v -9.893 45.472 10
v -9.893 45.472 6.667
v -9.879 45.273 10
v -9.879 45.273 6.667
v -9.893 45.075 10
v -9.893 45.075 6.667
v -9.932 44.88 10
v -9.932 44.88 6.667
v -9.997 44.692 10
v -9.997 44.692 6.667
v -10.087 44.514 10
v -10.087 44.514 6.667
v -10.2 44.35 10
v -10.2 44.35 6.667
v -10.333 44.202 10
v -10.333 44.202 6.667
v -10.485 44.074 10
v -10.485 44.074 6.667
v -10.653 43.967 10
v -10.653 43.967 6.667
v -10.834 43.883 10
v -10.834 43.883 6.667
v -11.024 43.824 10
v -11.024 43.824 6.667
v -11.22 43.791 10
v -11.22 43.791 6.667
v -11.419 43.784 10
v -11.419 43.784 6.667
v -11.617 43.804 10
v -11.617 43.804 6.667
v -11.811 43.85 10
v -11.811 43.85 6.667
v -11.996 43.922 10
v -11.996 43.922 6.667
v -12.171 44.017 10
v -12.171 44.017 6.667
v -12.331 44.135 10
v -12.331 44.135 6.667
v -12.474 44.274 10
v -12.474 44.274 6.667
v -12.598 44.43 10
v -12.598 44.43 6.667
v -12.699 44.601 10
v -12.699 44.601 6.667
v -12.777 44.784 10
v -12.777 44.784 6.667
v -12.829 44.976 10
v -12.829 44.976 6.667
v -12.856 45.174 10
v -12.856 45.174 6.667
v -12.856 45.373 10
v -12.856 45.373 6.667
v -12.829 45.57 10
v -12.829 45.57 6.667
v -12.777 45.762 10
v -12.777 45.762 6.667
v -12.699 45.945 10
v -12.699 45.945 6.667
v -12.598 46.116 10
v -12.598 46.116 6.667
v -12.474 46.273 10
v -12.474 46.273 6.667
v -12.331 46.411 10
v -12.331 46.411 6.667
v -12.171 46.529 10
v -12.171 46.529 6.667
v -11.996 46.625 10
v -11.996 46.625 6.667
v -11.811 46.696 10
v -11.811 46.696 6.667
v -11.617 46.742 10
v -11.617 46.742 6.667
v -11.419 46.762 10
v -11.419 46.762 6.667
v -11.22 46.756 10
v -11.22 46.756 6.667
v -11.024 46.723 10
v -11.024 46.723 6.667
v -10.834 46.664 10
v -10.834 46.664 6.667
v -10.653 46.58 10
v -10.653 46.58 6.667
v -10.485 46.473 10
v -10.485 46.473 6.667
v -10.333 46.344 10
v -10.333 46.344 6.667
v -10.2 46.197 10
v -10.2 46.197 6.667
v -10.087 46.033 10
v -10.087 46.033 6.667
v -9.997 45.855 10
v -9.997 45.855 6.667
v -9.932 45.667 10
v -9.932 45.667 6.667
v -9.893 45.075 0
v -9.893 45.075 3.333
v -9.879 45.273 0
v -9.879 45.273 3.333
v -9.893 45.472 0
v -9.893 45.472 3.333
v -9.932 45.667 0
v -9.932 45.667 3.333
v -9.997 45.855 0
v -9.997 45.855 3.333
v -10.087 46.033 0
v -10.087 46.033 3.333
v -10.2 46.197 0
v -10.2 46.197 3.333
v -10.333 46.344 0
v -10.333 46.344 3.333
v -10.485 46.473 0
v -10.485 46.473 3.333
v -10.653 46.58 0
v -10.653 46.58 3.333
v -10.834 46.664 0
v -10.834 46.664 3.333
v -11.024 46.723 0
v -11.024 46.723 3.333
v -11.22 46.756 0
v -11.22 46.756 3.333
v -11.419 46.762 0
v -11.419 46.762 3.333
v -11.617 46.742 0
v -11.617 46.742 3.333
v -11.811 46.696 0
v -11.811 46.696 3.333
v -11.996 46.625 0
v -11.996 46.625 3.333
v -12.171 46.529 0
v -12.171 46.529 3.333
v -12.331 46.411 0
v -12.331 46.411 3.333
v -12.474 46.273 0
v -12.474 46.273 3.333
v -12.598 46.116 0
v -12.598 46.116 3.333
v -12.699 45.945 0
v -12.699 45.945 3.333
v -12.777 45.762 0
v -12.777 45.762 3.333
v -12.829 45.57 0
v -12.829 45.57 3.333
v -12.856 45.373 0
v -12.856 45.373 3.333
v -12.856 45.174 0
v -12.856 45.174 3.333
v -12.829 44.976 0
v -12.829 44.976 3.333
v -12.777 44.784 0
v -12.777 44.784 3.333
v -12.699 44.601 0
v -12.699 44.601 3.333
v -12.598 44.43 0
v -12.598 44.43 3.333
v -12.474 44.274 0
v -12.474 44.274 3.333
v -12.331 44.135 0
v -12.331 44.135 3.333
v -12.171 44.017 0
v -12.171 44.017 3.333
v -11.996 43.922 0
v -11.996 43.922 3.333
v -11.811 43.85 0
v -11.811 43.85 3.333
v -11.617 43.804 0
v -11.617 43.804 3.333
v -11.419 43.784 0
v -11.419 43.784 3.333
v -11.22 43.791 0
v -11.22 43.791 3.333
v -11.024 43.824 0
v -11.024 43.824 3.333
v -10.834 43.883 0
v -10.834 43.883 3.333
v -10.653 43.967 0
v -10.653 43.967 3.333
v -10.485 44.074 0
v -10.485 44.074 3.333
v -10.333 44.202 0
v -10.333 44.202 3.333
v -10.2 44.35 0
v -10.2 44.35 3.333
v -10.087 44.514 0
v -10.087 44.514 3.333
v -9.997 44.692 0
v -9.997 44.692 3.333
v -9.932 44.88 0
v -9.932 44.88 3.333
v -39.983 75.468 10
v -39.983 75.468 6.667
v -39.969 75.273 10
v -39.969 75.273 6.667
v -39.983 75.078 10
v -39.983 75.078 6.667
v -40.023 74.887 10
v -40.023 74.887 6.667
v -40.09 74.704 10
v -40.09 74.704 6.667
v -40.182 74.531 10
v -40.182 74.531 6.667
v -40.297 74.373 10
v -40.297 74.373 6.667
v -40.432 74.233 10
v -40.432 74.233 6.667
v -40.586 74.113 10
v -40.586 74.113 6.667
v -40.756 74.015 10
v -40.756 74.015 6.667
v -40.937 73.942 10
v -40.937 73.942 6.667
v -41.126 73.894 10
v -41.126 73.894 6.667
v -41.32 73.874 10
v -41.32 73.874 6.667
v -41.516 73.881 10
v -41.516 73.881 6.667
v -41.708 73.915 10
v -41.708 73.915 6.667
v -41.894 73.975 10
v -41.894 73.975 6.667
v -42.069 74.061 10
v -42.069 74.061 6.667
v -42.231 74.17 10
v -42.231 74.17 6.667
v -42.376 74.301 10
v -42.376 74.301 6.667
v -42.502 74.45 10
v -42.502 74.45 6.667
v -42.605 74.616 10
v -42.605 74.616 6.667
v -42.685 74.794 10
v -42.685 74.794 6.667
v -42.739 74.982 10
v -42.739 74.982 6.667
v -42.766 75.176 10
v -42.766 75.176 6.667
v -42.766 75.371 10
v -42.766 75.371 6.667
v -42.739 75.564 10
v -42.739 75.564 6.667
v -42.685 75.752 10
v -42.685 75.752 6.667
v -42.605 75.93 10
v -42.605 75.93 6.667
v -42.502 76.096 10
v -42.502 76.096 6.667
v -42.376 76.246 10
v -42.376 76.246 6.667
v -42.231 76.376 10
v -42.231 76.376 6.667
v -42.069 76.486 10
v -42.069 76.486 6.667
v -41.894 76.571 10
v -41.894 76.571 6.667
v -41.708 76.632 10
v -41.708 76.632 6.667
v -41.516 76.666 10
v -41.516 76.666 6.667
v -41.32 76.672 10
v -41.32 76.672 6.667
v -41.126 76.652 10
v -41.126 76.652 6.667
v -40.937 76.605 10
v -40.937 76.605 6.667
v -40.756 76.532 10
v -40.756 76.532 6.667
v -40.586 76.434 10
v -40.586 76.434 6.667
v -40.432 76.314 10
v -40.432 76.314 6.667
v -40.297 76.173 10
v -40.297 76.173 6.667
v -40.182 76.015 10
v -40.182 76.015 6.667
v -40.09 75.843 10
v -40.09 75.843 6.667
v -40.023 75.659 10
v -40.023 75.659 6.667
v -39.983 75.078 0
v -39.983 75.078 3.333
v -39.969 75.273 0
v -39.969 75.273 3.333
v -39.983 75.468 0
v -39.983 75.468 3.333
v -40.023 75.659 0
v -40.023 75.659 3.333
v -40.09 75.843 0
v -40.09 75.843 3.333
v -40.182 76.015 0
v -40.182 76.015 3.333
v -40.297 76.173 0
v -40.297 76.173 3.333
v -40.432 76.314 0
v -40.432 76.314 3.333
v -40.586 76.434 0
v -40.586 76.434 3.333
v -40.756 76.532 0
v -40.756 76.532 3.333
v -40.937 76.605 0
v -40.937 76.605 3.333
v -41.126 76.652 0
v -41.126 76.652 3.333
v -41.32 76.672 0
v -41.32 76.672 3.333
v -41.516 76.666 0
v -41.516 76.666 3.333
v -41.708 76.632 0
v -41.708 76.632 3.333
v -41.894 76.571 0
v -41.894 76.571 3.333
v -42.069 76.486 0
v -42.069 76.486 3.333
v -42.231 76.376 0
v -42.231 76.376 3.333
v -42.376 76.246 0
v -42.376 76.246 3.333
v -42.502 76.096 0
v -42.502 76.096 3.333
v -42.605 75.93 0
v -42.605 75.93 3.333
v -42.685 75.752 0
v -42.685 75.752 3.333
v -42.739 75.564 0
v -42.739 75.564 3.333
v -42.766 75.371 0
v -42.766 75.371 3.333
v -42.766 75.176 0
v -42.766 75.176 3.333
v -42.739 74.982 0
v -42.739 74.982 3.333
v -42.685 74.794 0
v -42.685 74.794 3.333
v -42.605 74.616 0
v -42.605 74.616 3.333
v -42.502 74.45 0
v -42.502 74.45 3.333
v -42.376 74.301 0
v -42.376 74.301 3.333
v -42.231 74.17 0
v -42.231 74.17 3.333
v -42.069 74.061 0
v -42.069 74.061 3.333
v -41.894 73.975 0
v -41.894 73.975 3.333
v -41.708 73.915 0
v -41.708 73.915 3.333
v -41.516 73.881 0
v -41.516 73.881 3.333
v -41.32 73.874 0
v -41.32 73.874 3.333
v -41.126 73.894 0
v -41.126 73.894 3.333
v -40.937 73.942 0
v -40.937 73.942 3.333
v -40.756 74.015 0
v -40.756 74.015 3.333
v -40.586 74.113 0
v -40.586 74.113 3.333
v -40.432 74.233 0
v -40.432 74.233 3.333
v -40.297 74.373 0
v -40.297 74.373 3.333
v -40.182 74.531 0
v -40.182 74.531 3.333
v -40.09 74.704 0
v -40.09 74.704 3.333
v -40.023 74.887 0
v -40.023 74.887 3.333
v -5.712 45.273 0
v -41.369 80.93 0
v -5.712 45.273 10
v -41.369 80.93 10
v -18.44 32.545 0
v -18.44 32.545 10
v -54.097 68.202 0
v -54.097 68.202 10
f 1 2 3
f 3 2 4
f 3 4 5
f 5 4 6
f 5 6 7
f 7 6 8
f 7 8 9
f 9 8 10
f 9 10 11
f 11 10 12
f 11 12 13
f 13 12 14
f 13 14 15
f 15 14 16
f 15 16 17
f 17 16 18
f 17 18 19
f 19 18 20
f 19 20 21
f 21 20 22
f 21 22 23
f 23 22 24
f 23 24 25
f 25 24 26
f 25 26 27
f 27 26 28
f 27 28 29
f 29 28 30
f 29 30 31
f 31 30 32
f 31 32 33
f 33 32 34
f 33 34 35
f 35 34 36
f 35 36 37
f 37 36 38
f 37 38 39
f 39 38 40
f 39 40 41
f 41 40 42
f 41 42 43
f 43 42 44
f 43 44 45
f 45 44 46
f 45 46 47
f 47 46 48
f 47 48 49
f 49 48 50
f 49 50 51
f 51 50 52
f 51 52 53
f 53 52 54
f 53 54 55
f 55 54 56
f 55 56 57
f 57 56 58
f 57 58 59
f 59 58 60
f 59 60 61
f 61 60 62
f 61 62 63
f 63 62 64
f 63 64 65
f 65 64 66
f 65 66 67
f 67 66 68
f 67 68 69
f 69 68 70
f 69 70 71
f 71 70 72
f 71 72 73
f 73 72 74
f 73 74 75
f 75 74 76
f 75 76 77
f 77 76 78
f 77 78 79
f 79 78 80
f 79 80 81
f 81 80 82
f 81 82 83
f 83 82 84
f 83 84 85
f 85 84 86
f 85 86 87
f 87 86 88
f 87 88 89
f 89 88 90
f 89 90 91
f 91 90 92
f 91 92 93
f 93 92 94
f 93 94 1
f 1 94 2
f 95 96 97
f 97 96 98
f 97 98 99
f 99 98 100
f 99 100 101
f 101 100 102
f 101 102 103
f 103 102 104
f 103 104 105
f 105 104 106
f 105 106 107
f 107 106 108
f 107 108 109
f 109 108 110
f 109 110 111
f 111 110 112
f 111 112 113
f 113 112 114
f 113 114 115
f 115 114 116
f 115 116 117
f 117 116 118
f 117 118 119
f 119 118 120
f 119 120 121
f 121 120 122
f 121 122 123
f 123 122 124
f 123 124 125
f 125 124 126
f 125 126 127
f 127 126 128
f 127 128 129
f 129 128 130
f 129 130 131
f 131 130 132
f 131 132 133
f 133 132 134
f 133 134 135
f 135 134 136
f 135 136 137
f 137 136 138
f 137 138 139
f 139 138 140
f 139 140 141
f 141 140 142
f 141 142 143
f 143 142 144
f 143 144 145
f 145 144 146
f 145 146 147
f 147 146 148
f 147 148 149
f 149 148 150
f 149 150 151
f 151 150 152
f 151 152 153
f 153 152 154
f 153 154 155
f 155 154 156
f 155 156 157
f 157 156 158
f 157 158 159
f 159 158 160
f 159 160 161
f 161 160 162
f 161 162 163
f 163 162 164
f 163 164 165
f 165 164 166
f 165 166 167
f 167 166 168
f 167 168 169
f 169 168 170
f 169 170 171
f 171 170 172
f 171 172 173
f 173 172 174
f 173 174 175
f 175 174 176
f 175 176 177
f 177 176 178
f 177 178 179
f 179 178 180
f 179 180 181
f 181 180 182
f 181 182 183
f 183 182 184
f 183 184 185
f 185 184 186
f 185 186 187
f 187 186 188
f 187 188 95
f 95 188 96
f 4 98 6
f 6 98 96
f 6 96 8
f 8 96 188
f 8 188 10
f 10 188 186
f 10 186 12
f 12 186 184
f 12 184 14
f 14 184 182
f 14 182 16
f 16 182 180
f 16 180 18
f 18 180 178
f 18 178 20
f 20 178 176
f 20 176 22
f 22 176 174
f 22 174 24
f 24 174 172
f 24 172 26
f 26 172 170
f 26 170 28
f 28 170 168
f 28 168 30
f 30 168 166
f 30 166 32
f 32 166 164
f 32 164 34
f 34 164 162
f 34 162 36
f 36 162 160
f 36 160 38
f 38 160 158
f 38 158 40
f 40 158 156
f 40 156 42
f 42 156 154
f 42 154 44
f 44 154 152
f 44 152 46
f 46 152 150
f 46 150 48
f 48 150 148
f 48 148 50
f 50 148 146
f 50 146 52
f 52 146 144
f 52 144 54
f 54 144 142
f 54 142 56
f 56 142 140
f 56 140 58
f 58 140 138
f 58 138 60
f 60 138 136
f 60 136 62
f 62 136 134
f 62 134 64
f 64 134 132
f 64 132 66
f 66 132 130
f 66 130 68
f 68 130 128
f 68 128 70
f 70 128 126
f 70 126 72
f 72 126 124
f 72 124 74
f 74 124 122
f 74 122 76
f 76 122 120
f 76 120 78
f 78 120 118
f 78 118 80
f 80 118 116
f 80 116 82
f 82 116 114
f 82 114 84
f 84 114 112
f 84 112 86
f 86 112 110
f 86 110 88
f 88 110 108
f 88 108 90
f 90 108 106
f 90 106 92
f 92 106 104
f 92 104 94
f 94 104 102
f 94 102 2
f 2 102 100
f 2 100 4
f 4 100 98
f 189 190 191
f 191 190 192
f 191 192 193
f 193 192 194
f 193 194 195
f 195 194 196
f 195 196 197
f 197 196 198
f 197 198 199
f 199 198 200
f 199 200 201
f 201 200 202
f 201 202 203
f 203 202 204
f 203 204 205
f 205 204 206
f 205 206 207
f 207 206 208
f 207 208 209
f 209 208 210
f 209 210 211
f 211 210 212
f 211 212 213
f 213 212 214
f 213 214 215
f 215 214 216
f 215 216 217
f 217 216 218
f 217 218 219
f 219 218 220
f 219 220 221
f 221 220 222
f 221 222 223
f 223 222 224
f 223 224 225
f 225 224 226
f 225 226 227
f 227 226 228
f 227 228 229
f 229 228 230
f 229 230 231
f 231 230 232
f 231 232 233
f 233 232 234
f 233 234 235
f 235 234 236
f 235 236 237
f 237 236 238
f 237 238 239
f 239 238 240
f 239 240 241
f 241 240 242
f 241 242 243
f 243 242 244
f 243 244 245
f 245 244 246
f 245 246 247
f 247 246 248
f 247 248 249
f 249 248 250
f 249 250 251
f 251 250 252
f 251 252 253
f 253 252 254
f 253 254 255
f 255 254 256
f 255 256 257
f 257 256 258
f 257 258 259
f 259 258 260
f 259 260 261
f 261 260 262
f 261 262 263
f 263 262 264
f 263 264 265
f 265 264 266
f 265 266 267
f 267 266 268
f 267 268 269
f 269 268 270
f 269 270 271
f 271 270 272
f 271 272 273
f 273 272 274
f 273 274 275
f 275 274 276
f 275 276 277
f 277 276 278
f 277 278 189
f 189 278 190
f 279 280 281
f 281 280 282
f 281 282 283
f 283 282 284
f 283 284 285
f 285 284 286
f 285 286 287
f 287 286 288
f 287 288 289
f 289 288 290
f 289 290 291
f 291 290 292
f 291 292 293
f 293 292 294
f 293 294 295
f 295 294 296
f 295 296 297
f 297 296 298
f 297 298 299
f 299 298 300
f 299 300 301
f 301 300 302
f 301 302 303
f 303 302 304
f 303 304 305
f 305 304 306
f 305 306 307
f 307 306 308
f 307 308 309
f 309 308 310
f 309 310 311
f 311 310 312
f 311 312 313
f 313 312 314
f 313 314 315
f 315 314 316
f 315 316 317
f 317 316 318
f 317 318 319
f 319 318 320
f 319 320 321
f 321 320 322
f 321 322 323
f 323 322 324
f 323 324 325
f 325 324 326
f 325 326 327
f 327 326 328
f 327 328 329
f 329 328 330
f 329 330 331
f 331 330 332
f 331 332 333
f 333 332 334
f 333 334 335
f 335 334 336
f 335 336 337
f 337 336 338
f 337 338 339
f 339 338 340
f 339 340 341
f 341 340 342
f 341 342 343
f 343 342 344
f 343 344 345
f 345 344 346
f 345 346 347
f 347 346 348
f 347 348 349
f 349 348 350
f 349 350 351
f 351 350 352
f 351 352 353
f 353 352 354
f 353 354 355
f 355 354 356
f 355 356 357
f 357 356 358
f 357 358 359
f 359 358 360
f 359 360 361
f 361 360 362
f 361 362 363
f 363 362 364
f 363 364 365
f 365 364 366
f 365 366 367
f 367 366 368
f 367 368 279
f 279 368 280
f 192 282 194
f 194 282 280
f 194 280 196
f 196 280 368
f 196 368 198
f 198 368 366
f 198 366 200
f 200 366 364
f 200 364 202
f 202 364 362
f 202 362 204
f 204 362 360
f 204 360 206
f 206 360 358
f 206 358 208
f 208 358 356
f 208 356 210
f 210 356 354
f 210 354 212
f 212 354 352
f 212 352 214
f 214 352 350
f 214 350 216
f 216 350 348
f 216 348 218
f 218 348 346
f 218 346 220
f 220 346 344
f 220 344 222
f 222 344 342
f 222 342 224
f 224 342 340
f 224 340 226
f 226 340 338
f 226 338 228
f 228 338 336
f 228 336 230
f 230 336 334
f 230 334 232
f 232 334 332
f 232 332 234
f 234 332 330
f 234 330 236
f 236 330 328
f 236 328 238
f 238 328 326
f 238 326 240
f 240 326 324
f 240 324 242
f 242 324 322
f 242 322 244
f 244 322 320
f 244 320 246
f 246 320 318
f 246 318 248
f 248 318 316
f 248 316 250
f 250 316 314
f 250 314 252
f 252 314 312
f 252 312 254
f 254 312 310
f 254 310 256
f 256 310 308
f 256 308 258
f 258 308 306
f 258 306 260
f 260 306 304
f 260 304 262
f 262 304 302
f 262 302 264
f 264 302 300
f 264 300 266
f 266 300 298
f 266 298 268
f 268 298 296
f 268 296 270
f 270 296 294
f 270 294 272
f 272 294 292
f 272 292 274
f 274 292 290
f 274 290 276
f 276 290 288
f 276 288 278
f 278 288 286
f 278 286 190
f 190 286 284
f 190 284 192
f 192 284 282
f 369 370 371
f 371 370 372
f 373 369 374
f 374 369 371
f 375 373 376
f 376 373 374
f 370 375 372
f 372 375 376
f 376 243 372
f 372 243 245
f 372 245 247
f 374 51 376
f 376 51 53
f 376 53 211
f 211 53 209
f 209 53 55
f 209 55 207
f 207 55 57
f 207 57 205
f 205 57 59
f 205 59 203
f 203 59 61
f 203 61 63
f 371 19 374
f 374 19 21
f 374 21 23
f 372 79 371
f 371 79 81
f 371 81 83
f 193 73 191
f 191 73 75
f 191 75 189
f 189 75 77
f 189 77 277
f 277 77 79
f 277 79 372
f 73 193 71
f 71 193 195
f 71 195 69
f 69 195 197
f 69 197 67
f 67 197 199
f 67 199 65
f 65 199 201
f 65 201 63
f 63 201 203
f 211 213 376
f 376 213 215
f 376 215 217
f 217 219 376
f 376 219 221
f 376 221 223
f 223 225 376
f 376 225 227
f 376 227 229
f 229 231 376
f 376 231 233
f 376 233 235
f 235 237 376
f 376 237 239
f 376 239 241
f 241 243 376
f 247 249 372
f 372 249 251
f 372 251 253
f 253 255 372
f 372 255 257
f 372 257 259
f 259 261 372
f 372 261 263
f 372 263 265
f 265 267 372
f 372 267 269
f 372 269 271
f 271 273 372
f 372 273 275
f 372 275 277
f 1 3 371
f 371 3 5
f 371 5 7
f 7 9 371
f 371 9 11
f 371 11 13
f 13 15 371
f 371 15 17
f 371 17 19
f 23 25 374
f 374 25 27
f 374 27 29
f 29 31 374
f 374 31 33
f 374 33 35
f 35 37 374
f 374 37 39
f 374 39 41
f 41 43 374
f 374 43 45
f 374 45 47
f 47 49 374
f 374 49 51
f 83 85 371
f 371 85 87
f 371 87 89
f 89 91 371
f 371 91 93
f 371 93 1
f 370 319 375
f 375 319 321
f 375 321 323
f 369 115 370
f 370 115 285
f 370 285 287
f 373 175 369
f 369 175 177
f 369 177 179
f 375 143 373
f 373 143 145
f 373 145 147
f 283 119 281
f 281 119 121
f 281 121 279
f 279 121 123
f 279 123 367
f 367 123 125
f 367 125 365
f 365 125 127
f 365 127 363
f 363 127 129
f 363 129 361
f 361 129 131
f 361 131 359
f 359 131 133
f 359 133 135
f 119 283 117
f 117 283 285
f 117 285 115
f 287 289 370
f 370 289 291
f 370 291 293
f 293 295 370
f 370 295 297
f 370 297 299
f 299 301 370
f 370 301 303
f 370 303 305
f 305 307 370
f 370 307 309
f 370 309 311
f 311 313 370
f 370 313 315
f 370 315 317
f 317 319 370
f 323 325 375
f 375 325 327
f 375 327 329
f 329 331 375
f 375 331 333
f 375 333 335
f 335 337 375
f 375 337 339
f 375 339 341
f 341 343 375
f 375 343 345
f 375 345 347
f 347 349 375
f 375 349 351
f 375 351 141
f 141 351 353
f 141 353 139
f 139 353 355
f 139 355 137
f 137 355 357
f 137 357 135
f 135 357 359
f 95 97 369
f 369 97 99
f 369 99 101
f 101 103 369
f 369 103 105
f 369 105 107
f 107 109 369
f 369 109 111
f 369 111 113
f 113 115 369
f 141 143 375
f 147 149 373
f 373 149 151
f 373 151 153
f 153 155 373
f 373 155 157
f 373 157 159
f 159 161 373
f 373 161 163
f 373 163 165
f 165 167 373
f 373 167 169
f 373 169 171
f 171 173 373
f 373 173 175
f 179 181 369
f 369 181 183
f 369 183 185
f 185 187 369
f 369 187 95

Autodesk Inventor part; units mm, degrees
ref_plane "YZ Plane" through (0, 0, 0) normal (1, 0, 0) x (0, 1, 0)
ref_plane "XZ Plane" through (0, 0, 0) normal (0, 1, 0) x (-1, 0, 0)
ref_plane "XY Plane" through (0, 0, 0) normal (0, 0, 1) x (1, 0, 0)
ref_plane "Arbeitsebene1" through (0, 0, 0) normal (0, 0, 1) x (1, 0, 0)
sketch "Skizze1" plane through (0, 0, 0) normal (0, 0, 1) x (1, 0, 0)
  line L0 (-0.2844, 28.5315) -> (-56.8529, 85.1) projected
  circle A0 centre (-11.3693, 45.2732) radius 1.49 projected
  circle A1 centre (-41.3693, 75.2732) radius 1.4 projected
  line L1 (-47.0261, 75.2732) -> (-41.3693, 80.9301)
  line L2 (-41.3693, 80.9301) -> (-5.7124, 45.2732)
  line L3 (-5.7124, 45.2732) -> (-11.3693, 39.6164)
  line L4 (-11.3693, 39.6164) -> (-47.0261, 75.2732)
  line L5 (-51.5685, 65.6735) -> (5, 9.105) projected
  line L6 (-47.0261, 75.2732) -> (-54.0972, 68.2022)
  line L7 (-54.0972, 68.2022) -> (-18.4403, 32.5453)
  line L8 (-18.4403, 32.5453) -> (-11.3693, 39.6164)
  line L9 (-11.3693, 39.6164) -> (-47.0261, 75.2732)
  point P0 (0, 0)
  dimension "d0" = 4
  dimension "d1" = 4
  dimension "d2" = 4
  dimension "d3" = 4
extrude "Extrusion1" add sketch "Skizze1" along normal blind 10
properties part number "NematostellaImager_mirrormount"
